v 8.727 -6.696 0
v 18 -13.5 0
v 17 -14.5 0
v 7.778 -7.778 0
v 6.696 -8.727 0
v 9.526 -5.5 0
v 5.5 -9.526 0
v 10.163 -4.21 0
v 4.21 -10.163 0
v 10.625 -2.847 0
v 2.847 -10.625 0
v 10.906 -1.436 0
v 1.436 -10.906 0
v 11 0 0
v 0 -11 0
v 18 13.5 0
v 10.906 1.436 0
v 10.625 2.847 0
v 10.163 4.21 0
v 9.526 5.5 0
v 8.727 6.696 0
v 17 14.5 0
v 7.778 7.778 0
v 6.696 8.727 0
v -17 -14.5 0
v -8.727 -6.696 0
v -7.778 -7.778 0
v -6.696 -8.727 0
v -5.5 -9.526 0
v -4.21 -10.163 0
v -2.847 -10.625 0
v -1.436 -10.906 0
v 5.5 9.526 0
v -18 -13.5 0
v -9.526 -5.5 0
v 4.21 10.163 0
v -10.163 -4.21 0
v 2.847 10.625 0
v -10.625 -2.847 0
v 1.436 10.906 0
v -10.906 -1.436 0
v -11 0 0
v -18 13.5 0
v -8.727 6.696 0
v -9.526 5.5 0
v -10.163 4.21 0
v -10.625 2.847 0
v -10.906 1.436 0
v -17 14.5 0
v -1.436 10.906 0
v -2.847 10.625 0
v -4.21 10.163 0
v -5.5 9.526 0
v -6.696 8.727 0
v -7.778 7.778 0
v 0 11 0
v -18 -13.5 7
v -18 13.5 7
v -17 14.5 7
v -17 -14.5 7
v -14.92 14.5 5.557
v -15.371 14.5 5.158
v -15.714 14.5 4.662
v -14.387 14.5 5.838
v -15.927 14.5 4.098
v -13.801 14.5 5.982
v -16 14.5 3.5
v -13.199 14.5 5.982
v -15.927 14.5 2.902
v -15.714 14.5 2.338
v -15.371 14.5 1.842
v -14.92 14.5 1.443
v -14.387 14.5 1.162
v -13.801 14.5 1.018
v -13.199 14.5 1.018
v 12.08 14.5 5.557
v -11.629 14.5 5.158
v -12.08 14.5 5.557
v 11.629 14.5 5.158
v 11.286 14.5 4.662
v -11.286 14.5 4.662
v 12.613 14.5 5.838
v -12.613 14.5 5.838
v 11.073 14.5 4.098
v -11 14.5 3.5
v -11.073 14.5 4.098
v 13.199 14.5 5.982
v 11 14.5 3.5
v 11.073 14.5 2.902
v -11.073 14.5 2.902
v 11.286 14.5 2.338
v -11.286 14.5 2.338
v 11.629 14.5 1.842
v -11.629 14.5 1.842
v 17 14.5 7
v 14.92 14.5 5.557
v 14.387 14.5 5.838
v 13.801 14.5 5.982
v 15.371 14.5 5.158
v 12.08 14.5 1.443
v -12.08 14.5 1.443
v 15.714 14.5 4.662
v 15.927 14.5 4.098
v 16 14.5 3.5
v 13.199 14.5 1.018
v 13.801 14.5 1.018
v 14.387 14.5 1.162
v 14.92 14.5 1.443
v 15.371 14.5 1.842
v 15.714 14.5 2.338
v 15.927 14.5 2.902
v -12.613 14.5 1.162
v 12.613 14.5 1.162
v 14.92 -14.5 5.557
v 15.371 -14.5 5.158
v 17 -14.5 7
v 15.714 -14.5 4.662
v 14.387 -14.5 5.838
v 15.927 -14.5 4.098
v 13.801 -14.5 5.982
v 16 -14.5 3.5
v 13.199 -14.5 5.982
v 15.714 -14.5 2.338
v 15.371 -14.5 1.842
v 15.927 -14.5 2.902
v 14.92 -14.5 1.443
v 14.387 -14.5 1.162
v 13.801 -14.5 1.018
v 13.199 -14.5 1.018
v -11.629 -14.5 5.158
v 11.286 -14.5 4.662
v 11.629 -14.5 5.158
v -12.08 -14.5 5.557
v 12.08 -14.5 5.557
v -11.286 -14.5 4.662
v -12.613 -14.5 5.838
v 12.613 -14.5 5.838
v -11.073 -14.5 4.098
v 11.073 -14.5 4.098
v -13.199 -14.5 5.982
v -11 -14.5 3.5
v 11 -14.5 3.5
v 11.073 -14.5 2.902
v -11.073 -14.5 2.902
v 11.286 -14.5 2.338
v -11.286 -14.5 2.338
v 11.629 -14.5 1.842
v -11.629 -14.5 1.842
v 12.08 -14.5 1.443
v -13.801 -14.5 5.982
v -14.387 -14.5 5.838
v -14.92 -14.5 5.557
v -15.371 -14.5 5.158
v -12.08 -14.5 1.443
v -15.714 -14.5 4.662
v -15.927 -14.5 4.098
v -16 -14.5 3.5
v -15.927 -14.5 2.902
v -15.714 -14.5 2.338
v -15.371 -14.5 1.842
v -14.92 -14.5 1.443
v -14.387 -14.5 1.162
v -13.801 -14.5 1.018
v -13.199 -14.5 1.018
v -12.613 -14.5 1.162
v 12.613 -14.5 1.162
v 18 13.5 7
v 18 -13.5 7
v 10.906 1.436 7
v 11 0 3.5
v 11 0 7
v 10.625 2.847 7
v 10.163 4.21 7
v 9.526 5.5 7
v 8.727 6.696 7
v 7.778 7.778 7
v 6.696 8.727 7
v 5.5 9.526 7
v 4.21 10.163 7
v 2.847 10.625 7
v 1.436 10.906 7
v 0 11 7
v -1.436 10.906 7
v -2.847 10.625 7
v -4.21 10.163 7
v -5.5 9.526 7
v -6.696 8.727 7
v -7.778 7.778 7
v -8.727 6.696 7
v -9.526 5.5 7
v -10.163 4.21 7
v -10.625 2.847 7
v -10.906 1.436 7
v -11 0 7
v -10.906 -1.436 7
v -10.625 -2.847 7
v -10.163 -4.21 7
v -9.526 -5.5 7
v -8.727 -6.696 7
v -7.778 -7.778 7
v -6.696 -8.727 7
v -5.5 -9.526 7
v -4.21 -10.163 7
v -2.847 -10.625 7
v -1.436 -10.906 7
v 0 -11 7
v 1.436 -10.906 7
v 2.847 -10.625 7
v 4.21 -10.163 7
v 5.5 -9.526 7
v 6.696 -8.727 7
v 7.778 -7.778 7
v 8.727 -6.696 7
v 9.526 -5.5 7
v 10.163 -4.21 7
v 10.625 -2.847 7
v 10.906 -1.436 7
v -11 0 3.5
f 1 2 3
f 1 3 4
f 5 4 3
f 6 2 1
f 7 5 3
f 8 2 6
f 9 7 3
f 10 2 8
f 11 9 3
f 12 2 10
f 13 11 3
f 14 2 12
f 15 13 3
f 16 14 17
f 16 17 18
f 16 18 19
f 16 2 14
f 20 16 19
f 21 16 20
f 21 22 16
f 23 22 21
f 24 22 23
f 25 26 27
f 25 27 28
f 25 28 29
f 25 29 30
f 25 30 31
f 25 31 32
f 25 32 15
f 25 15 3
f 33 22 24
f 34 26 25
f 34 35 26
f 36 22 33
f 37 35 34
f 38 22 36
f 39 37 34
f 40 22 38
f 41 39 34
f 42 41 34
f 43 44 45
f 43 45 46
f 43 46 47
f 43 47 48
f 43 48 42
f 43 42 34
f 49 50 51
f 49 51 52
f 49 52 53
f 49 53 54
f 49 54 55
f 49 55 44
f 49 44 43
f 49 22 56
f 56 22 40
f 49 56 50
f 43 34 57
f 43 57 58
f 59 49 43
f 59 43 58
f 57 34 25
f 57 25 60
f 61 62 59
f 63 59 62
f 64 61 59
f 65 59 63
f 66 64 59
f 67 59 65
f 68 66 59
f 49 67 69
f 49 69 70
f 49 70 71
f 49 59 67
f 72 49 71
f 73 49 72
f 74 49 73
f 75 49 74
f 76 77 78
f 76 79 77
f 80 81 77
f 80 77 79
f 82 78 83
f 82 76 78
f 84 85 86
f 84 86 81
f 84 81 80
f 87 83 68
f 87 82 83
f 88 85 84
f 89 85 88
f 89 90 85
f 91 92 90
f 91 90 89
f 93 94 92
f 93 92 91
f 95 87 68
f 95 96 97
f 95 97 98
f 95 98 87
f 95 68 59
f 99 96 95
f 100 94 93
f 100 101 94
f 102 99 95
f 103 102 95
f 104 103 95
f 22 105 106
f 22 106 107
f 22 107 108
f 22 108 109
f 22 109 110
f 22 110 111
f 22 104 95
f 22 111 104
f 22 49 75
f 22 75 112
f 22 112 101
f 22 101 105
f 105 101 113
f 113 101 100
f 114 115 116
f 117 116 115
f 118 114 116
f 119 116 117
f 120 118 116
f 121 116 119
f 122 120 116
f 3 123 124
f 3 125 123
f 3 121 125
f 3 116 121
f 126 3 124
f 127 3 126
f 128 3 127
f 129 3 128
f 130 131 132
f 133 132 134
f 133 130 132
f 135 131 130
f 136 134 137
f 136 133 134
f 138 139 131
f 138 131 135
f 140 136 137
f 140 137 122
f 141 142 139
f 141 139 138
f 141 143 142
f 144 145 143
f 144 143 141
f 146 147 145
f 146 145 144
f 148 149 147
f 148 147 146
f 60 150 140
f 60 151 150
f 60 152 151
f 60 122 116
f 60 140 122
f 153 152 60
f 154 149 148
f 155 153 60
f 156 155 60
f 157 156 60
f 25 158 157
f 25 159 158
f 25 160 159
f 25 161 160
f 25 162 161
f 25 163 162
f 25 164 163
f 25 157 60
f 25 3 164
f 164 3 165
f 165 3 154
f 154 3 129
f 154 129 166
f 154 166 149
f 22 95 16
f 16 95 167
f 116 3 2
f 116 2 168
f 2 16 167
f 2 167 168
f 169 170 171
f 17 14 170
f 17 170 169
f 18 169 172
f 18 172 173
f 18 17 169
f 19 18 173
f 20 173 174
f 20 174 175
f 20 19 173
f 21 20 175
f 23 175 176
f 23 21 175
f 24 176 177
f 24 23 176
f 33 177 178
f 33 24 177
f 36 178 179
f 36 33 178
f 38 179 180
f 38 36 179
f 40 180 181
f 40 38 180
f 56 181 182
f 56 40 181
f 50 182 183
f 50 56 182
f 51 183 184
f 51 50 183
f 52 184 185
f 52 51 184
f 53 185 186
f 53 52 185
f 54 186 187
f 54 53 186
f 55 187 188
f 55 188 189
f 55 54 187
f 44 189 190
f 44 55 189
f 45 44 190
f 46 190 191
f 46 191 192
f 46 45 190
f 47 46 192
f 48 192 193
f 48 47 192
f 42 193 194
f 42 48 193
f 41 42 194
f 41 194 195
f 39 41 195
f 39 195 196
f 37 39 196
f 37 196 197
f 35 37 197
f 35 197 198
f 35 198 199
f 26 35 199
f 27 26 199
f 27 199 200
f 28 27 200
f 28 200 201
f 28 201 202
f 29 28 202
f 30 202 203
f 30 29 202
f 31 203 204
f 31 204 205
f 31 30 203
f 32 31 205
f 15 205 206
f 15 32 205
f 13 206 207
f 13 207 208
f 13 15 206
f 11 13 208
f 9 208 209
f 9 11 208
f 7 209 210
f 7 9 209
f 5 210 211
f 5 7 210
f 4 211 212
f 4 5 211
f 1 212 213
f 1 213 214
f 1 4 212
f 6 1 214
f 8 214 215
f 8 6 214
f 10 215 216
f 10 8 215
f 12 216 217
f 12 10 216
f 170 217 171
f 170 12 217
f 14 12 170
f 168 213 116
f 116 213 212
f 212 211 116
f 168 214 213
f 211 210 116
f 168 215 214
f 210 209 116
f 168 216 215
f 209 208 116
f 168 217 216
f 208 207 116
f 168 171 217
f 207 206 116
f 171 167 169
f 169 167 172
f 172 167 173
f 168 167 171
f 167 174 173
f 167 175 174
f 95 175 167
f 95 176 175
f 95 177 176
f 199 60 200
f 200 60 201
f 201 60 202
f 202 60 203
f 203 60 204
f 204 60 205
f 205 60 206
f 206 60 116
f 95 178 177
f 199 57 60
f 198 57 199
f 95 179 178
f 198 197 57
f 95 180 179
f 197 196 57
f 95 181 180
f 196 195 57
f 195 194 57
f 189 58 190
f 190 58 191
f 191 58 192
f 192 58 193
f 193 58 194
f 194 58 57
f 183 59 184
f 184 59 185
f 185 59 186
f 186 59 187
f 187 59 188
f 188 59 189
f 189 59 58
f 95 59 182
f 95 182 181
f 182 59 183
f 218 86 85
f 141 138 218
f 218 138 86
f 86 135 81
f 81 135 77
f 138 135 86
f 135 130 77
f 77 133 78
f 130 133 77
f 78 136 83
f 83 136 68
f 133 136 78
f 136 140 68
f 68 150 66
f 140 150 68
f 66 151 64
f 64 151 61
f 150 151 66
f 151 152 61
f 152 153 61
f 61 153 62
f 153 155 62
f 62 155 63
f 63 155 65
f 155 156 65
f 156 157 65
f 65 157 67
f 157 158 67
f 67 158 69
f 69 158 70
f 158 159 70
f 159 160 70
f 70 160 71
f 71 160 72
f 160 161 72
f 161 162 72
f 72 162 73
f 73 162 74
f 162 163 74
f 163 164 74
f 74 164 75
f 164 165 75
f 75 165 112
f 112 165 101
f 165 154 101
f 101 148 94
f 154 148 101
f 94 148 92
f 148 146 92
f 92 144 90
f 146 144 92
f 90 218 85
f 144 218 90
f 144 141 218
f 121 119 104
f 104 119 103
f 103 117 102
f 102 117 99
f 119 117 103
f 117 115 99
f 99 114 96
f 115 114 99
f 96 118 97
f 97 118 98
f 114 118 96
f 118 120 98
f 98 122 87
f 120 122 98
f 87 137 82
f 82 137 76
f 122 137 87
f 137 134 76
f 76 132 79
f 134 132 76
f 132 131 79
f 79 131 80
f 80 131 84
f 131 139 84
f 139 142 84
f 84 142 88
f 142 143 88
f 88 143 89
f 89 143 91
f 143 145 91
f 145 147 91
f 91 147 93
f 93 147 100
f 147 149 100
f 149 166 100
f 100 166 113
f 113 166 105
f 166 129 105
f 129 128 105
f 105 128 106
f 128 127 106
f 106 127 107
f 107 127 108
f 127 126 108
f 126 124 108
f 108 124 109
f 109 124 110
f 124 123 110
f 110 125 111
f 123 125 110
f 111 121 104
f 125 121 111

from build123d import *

# Parameters (mm, degrees)
SKETCH_W        = 36
SKETCH_H        = 29
SKETCH_R        = 11
PAD_DEPTH       = 7
SKETCH001_R     = 2.5
POCKET_DEPTH    = 29.001
CHAMFER_SIZE    = 1
CHAMFER001_SIZE = 1
CHAMFER002_SIZE = 1


with BuildPart() as part:
    # Sketch → Pad (new body)
    with BuildSketch(Plane.XY):
        Rectangle(SKETCH_W, SKETCH_H)
        Circle(SKETCH_R, mode=Mode.SUBTRACT)
    extrude(amount=PAD_DEPTH)

    # Sketch001 (on Face3 of Pad) → Pocket (cut, through all)
    with BuildSketch(Plane.XZ.offset(14.5)):
        with Locations((13.5, 3.5)):
            Circle(SKETCH001_R)
        with Locations((-13.5, 3.5)):
            Circle(SKETCH001_R)
    extrude(amount=-POCKET_DEPTH, mode=Mode.SUBTRACT)

    # Chamfer
    chamfer_edges = [part.edges().sort_by_distance(p)[0] for p in [
        (18, -14.5, 3.5),
    ]]
    chamfer(chamfer_edges, length=CHAMFER_SIZE)

    # Chamfer001
    chamfer001_edges = [part.edges().sort_by_distance(p)[0] for p in [
        (-18, -14.5, 3.5),
    ]]
    chamfer(chamfer001_edges, length=CHAMFER001_SIZE)

    # Chamfer002
    chamfer002_edges = [part.edges().sort_by_distance(p)[0] for p in [
        (18, 14.5, 3.5),
        (-18, 14.5, 3.5),
    ]]
    chamfer(chamfer002_edges, length=CHAMFER002_SIZE)


solid = part.part
